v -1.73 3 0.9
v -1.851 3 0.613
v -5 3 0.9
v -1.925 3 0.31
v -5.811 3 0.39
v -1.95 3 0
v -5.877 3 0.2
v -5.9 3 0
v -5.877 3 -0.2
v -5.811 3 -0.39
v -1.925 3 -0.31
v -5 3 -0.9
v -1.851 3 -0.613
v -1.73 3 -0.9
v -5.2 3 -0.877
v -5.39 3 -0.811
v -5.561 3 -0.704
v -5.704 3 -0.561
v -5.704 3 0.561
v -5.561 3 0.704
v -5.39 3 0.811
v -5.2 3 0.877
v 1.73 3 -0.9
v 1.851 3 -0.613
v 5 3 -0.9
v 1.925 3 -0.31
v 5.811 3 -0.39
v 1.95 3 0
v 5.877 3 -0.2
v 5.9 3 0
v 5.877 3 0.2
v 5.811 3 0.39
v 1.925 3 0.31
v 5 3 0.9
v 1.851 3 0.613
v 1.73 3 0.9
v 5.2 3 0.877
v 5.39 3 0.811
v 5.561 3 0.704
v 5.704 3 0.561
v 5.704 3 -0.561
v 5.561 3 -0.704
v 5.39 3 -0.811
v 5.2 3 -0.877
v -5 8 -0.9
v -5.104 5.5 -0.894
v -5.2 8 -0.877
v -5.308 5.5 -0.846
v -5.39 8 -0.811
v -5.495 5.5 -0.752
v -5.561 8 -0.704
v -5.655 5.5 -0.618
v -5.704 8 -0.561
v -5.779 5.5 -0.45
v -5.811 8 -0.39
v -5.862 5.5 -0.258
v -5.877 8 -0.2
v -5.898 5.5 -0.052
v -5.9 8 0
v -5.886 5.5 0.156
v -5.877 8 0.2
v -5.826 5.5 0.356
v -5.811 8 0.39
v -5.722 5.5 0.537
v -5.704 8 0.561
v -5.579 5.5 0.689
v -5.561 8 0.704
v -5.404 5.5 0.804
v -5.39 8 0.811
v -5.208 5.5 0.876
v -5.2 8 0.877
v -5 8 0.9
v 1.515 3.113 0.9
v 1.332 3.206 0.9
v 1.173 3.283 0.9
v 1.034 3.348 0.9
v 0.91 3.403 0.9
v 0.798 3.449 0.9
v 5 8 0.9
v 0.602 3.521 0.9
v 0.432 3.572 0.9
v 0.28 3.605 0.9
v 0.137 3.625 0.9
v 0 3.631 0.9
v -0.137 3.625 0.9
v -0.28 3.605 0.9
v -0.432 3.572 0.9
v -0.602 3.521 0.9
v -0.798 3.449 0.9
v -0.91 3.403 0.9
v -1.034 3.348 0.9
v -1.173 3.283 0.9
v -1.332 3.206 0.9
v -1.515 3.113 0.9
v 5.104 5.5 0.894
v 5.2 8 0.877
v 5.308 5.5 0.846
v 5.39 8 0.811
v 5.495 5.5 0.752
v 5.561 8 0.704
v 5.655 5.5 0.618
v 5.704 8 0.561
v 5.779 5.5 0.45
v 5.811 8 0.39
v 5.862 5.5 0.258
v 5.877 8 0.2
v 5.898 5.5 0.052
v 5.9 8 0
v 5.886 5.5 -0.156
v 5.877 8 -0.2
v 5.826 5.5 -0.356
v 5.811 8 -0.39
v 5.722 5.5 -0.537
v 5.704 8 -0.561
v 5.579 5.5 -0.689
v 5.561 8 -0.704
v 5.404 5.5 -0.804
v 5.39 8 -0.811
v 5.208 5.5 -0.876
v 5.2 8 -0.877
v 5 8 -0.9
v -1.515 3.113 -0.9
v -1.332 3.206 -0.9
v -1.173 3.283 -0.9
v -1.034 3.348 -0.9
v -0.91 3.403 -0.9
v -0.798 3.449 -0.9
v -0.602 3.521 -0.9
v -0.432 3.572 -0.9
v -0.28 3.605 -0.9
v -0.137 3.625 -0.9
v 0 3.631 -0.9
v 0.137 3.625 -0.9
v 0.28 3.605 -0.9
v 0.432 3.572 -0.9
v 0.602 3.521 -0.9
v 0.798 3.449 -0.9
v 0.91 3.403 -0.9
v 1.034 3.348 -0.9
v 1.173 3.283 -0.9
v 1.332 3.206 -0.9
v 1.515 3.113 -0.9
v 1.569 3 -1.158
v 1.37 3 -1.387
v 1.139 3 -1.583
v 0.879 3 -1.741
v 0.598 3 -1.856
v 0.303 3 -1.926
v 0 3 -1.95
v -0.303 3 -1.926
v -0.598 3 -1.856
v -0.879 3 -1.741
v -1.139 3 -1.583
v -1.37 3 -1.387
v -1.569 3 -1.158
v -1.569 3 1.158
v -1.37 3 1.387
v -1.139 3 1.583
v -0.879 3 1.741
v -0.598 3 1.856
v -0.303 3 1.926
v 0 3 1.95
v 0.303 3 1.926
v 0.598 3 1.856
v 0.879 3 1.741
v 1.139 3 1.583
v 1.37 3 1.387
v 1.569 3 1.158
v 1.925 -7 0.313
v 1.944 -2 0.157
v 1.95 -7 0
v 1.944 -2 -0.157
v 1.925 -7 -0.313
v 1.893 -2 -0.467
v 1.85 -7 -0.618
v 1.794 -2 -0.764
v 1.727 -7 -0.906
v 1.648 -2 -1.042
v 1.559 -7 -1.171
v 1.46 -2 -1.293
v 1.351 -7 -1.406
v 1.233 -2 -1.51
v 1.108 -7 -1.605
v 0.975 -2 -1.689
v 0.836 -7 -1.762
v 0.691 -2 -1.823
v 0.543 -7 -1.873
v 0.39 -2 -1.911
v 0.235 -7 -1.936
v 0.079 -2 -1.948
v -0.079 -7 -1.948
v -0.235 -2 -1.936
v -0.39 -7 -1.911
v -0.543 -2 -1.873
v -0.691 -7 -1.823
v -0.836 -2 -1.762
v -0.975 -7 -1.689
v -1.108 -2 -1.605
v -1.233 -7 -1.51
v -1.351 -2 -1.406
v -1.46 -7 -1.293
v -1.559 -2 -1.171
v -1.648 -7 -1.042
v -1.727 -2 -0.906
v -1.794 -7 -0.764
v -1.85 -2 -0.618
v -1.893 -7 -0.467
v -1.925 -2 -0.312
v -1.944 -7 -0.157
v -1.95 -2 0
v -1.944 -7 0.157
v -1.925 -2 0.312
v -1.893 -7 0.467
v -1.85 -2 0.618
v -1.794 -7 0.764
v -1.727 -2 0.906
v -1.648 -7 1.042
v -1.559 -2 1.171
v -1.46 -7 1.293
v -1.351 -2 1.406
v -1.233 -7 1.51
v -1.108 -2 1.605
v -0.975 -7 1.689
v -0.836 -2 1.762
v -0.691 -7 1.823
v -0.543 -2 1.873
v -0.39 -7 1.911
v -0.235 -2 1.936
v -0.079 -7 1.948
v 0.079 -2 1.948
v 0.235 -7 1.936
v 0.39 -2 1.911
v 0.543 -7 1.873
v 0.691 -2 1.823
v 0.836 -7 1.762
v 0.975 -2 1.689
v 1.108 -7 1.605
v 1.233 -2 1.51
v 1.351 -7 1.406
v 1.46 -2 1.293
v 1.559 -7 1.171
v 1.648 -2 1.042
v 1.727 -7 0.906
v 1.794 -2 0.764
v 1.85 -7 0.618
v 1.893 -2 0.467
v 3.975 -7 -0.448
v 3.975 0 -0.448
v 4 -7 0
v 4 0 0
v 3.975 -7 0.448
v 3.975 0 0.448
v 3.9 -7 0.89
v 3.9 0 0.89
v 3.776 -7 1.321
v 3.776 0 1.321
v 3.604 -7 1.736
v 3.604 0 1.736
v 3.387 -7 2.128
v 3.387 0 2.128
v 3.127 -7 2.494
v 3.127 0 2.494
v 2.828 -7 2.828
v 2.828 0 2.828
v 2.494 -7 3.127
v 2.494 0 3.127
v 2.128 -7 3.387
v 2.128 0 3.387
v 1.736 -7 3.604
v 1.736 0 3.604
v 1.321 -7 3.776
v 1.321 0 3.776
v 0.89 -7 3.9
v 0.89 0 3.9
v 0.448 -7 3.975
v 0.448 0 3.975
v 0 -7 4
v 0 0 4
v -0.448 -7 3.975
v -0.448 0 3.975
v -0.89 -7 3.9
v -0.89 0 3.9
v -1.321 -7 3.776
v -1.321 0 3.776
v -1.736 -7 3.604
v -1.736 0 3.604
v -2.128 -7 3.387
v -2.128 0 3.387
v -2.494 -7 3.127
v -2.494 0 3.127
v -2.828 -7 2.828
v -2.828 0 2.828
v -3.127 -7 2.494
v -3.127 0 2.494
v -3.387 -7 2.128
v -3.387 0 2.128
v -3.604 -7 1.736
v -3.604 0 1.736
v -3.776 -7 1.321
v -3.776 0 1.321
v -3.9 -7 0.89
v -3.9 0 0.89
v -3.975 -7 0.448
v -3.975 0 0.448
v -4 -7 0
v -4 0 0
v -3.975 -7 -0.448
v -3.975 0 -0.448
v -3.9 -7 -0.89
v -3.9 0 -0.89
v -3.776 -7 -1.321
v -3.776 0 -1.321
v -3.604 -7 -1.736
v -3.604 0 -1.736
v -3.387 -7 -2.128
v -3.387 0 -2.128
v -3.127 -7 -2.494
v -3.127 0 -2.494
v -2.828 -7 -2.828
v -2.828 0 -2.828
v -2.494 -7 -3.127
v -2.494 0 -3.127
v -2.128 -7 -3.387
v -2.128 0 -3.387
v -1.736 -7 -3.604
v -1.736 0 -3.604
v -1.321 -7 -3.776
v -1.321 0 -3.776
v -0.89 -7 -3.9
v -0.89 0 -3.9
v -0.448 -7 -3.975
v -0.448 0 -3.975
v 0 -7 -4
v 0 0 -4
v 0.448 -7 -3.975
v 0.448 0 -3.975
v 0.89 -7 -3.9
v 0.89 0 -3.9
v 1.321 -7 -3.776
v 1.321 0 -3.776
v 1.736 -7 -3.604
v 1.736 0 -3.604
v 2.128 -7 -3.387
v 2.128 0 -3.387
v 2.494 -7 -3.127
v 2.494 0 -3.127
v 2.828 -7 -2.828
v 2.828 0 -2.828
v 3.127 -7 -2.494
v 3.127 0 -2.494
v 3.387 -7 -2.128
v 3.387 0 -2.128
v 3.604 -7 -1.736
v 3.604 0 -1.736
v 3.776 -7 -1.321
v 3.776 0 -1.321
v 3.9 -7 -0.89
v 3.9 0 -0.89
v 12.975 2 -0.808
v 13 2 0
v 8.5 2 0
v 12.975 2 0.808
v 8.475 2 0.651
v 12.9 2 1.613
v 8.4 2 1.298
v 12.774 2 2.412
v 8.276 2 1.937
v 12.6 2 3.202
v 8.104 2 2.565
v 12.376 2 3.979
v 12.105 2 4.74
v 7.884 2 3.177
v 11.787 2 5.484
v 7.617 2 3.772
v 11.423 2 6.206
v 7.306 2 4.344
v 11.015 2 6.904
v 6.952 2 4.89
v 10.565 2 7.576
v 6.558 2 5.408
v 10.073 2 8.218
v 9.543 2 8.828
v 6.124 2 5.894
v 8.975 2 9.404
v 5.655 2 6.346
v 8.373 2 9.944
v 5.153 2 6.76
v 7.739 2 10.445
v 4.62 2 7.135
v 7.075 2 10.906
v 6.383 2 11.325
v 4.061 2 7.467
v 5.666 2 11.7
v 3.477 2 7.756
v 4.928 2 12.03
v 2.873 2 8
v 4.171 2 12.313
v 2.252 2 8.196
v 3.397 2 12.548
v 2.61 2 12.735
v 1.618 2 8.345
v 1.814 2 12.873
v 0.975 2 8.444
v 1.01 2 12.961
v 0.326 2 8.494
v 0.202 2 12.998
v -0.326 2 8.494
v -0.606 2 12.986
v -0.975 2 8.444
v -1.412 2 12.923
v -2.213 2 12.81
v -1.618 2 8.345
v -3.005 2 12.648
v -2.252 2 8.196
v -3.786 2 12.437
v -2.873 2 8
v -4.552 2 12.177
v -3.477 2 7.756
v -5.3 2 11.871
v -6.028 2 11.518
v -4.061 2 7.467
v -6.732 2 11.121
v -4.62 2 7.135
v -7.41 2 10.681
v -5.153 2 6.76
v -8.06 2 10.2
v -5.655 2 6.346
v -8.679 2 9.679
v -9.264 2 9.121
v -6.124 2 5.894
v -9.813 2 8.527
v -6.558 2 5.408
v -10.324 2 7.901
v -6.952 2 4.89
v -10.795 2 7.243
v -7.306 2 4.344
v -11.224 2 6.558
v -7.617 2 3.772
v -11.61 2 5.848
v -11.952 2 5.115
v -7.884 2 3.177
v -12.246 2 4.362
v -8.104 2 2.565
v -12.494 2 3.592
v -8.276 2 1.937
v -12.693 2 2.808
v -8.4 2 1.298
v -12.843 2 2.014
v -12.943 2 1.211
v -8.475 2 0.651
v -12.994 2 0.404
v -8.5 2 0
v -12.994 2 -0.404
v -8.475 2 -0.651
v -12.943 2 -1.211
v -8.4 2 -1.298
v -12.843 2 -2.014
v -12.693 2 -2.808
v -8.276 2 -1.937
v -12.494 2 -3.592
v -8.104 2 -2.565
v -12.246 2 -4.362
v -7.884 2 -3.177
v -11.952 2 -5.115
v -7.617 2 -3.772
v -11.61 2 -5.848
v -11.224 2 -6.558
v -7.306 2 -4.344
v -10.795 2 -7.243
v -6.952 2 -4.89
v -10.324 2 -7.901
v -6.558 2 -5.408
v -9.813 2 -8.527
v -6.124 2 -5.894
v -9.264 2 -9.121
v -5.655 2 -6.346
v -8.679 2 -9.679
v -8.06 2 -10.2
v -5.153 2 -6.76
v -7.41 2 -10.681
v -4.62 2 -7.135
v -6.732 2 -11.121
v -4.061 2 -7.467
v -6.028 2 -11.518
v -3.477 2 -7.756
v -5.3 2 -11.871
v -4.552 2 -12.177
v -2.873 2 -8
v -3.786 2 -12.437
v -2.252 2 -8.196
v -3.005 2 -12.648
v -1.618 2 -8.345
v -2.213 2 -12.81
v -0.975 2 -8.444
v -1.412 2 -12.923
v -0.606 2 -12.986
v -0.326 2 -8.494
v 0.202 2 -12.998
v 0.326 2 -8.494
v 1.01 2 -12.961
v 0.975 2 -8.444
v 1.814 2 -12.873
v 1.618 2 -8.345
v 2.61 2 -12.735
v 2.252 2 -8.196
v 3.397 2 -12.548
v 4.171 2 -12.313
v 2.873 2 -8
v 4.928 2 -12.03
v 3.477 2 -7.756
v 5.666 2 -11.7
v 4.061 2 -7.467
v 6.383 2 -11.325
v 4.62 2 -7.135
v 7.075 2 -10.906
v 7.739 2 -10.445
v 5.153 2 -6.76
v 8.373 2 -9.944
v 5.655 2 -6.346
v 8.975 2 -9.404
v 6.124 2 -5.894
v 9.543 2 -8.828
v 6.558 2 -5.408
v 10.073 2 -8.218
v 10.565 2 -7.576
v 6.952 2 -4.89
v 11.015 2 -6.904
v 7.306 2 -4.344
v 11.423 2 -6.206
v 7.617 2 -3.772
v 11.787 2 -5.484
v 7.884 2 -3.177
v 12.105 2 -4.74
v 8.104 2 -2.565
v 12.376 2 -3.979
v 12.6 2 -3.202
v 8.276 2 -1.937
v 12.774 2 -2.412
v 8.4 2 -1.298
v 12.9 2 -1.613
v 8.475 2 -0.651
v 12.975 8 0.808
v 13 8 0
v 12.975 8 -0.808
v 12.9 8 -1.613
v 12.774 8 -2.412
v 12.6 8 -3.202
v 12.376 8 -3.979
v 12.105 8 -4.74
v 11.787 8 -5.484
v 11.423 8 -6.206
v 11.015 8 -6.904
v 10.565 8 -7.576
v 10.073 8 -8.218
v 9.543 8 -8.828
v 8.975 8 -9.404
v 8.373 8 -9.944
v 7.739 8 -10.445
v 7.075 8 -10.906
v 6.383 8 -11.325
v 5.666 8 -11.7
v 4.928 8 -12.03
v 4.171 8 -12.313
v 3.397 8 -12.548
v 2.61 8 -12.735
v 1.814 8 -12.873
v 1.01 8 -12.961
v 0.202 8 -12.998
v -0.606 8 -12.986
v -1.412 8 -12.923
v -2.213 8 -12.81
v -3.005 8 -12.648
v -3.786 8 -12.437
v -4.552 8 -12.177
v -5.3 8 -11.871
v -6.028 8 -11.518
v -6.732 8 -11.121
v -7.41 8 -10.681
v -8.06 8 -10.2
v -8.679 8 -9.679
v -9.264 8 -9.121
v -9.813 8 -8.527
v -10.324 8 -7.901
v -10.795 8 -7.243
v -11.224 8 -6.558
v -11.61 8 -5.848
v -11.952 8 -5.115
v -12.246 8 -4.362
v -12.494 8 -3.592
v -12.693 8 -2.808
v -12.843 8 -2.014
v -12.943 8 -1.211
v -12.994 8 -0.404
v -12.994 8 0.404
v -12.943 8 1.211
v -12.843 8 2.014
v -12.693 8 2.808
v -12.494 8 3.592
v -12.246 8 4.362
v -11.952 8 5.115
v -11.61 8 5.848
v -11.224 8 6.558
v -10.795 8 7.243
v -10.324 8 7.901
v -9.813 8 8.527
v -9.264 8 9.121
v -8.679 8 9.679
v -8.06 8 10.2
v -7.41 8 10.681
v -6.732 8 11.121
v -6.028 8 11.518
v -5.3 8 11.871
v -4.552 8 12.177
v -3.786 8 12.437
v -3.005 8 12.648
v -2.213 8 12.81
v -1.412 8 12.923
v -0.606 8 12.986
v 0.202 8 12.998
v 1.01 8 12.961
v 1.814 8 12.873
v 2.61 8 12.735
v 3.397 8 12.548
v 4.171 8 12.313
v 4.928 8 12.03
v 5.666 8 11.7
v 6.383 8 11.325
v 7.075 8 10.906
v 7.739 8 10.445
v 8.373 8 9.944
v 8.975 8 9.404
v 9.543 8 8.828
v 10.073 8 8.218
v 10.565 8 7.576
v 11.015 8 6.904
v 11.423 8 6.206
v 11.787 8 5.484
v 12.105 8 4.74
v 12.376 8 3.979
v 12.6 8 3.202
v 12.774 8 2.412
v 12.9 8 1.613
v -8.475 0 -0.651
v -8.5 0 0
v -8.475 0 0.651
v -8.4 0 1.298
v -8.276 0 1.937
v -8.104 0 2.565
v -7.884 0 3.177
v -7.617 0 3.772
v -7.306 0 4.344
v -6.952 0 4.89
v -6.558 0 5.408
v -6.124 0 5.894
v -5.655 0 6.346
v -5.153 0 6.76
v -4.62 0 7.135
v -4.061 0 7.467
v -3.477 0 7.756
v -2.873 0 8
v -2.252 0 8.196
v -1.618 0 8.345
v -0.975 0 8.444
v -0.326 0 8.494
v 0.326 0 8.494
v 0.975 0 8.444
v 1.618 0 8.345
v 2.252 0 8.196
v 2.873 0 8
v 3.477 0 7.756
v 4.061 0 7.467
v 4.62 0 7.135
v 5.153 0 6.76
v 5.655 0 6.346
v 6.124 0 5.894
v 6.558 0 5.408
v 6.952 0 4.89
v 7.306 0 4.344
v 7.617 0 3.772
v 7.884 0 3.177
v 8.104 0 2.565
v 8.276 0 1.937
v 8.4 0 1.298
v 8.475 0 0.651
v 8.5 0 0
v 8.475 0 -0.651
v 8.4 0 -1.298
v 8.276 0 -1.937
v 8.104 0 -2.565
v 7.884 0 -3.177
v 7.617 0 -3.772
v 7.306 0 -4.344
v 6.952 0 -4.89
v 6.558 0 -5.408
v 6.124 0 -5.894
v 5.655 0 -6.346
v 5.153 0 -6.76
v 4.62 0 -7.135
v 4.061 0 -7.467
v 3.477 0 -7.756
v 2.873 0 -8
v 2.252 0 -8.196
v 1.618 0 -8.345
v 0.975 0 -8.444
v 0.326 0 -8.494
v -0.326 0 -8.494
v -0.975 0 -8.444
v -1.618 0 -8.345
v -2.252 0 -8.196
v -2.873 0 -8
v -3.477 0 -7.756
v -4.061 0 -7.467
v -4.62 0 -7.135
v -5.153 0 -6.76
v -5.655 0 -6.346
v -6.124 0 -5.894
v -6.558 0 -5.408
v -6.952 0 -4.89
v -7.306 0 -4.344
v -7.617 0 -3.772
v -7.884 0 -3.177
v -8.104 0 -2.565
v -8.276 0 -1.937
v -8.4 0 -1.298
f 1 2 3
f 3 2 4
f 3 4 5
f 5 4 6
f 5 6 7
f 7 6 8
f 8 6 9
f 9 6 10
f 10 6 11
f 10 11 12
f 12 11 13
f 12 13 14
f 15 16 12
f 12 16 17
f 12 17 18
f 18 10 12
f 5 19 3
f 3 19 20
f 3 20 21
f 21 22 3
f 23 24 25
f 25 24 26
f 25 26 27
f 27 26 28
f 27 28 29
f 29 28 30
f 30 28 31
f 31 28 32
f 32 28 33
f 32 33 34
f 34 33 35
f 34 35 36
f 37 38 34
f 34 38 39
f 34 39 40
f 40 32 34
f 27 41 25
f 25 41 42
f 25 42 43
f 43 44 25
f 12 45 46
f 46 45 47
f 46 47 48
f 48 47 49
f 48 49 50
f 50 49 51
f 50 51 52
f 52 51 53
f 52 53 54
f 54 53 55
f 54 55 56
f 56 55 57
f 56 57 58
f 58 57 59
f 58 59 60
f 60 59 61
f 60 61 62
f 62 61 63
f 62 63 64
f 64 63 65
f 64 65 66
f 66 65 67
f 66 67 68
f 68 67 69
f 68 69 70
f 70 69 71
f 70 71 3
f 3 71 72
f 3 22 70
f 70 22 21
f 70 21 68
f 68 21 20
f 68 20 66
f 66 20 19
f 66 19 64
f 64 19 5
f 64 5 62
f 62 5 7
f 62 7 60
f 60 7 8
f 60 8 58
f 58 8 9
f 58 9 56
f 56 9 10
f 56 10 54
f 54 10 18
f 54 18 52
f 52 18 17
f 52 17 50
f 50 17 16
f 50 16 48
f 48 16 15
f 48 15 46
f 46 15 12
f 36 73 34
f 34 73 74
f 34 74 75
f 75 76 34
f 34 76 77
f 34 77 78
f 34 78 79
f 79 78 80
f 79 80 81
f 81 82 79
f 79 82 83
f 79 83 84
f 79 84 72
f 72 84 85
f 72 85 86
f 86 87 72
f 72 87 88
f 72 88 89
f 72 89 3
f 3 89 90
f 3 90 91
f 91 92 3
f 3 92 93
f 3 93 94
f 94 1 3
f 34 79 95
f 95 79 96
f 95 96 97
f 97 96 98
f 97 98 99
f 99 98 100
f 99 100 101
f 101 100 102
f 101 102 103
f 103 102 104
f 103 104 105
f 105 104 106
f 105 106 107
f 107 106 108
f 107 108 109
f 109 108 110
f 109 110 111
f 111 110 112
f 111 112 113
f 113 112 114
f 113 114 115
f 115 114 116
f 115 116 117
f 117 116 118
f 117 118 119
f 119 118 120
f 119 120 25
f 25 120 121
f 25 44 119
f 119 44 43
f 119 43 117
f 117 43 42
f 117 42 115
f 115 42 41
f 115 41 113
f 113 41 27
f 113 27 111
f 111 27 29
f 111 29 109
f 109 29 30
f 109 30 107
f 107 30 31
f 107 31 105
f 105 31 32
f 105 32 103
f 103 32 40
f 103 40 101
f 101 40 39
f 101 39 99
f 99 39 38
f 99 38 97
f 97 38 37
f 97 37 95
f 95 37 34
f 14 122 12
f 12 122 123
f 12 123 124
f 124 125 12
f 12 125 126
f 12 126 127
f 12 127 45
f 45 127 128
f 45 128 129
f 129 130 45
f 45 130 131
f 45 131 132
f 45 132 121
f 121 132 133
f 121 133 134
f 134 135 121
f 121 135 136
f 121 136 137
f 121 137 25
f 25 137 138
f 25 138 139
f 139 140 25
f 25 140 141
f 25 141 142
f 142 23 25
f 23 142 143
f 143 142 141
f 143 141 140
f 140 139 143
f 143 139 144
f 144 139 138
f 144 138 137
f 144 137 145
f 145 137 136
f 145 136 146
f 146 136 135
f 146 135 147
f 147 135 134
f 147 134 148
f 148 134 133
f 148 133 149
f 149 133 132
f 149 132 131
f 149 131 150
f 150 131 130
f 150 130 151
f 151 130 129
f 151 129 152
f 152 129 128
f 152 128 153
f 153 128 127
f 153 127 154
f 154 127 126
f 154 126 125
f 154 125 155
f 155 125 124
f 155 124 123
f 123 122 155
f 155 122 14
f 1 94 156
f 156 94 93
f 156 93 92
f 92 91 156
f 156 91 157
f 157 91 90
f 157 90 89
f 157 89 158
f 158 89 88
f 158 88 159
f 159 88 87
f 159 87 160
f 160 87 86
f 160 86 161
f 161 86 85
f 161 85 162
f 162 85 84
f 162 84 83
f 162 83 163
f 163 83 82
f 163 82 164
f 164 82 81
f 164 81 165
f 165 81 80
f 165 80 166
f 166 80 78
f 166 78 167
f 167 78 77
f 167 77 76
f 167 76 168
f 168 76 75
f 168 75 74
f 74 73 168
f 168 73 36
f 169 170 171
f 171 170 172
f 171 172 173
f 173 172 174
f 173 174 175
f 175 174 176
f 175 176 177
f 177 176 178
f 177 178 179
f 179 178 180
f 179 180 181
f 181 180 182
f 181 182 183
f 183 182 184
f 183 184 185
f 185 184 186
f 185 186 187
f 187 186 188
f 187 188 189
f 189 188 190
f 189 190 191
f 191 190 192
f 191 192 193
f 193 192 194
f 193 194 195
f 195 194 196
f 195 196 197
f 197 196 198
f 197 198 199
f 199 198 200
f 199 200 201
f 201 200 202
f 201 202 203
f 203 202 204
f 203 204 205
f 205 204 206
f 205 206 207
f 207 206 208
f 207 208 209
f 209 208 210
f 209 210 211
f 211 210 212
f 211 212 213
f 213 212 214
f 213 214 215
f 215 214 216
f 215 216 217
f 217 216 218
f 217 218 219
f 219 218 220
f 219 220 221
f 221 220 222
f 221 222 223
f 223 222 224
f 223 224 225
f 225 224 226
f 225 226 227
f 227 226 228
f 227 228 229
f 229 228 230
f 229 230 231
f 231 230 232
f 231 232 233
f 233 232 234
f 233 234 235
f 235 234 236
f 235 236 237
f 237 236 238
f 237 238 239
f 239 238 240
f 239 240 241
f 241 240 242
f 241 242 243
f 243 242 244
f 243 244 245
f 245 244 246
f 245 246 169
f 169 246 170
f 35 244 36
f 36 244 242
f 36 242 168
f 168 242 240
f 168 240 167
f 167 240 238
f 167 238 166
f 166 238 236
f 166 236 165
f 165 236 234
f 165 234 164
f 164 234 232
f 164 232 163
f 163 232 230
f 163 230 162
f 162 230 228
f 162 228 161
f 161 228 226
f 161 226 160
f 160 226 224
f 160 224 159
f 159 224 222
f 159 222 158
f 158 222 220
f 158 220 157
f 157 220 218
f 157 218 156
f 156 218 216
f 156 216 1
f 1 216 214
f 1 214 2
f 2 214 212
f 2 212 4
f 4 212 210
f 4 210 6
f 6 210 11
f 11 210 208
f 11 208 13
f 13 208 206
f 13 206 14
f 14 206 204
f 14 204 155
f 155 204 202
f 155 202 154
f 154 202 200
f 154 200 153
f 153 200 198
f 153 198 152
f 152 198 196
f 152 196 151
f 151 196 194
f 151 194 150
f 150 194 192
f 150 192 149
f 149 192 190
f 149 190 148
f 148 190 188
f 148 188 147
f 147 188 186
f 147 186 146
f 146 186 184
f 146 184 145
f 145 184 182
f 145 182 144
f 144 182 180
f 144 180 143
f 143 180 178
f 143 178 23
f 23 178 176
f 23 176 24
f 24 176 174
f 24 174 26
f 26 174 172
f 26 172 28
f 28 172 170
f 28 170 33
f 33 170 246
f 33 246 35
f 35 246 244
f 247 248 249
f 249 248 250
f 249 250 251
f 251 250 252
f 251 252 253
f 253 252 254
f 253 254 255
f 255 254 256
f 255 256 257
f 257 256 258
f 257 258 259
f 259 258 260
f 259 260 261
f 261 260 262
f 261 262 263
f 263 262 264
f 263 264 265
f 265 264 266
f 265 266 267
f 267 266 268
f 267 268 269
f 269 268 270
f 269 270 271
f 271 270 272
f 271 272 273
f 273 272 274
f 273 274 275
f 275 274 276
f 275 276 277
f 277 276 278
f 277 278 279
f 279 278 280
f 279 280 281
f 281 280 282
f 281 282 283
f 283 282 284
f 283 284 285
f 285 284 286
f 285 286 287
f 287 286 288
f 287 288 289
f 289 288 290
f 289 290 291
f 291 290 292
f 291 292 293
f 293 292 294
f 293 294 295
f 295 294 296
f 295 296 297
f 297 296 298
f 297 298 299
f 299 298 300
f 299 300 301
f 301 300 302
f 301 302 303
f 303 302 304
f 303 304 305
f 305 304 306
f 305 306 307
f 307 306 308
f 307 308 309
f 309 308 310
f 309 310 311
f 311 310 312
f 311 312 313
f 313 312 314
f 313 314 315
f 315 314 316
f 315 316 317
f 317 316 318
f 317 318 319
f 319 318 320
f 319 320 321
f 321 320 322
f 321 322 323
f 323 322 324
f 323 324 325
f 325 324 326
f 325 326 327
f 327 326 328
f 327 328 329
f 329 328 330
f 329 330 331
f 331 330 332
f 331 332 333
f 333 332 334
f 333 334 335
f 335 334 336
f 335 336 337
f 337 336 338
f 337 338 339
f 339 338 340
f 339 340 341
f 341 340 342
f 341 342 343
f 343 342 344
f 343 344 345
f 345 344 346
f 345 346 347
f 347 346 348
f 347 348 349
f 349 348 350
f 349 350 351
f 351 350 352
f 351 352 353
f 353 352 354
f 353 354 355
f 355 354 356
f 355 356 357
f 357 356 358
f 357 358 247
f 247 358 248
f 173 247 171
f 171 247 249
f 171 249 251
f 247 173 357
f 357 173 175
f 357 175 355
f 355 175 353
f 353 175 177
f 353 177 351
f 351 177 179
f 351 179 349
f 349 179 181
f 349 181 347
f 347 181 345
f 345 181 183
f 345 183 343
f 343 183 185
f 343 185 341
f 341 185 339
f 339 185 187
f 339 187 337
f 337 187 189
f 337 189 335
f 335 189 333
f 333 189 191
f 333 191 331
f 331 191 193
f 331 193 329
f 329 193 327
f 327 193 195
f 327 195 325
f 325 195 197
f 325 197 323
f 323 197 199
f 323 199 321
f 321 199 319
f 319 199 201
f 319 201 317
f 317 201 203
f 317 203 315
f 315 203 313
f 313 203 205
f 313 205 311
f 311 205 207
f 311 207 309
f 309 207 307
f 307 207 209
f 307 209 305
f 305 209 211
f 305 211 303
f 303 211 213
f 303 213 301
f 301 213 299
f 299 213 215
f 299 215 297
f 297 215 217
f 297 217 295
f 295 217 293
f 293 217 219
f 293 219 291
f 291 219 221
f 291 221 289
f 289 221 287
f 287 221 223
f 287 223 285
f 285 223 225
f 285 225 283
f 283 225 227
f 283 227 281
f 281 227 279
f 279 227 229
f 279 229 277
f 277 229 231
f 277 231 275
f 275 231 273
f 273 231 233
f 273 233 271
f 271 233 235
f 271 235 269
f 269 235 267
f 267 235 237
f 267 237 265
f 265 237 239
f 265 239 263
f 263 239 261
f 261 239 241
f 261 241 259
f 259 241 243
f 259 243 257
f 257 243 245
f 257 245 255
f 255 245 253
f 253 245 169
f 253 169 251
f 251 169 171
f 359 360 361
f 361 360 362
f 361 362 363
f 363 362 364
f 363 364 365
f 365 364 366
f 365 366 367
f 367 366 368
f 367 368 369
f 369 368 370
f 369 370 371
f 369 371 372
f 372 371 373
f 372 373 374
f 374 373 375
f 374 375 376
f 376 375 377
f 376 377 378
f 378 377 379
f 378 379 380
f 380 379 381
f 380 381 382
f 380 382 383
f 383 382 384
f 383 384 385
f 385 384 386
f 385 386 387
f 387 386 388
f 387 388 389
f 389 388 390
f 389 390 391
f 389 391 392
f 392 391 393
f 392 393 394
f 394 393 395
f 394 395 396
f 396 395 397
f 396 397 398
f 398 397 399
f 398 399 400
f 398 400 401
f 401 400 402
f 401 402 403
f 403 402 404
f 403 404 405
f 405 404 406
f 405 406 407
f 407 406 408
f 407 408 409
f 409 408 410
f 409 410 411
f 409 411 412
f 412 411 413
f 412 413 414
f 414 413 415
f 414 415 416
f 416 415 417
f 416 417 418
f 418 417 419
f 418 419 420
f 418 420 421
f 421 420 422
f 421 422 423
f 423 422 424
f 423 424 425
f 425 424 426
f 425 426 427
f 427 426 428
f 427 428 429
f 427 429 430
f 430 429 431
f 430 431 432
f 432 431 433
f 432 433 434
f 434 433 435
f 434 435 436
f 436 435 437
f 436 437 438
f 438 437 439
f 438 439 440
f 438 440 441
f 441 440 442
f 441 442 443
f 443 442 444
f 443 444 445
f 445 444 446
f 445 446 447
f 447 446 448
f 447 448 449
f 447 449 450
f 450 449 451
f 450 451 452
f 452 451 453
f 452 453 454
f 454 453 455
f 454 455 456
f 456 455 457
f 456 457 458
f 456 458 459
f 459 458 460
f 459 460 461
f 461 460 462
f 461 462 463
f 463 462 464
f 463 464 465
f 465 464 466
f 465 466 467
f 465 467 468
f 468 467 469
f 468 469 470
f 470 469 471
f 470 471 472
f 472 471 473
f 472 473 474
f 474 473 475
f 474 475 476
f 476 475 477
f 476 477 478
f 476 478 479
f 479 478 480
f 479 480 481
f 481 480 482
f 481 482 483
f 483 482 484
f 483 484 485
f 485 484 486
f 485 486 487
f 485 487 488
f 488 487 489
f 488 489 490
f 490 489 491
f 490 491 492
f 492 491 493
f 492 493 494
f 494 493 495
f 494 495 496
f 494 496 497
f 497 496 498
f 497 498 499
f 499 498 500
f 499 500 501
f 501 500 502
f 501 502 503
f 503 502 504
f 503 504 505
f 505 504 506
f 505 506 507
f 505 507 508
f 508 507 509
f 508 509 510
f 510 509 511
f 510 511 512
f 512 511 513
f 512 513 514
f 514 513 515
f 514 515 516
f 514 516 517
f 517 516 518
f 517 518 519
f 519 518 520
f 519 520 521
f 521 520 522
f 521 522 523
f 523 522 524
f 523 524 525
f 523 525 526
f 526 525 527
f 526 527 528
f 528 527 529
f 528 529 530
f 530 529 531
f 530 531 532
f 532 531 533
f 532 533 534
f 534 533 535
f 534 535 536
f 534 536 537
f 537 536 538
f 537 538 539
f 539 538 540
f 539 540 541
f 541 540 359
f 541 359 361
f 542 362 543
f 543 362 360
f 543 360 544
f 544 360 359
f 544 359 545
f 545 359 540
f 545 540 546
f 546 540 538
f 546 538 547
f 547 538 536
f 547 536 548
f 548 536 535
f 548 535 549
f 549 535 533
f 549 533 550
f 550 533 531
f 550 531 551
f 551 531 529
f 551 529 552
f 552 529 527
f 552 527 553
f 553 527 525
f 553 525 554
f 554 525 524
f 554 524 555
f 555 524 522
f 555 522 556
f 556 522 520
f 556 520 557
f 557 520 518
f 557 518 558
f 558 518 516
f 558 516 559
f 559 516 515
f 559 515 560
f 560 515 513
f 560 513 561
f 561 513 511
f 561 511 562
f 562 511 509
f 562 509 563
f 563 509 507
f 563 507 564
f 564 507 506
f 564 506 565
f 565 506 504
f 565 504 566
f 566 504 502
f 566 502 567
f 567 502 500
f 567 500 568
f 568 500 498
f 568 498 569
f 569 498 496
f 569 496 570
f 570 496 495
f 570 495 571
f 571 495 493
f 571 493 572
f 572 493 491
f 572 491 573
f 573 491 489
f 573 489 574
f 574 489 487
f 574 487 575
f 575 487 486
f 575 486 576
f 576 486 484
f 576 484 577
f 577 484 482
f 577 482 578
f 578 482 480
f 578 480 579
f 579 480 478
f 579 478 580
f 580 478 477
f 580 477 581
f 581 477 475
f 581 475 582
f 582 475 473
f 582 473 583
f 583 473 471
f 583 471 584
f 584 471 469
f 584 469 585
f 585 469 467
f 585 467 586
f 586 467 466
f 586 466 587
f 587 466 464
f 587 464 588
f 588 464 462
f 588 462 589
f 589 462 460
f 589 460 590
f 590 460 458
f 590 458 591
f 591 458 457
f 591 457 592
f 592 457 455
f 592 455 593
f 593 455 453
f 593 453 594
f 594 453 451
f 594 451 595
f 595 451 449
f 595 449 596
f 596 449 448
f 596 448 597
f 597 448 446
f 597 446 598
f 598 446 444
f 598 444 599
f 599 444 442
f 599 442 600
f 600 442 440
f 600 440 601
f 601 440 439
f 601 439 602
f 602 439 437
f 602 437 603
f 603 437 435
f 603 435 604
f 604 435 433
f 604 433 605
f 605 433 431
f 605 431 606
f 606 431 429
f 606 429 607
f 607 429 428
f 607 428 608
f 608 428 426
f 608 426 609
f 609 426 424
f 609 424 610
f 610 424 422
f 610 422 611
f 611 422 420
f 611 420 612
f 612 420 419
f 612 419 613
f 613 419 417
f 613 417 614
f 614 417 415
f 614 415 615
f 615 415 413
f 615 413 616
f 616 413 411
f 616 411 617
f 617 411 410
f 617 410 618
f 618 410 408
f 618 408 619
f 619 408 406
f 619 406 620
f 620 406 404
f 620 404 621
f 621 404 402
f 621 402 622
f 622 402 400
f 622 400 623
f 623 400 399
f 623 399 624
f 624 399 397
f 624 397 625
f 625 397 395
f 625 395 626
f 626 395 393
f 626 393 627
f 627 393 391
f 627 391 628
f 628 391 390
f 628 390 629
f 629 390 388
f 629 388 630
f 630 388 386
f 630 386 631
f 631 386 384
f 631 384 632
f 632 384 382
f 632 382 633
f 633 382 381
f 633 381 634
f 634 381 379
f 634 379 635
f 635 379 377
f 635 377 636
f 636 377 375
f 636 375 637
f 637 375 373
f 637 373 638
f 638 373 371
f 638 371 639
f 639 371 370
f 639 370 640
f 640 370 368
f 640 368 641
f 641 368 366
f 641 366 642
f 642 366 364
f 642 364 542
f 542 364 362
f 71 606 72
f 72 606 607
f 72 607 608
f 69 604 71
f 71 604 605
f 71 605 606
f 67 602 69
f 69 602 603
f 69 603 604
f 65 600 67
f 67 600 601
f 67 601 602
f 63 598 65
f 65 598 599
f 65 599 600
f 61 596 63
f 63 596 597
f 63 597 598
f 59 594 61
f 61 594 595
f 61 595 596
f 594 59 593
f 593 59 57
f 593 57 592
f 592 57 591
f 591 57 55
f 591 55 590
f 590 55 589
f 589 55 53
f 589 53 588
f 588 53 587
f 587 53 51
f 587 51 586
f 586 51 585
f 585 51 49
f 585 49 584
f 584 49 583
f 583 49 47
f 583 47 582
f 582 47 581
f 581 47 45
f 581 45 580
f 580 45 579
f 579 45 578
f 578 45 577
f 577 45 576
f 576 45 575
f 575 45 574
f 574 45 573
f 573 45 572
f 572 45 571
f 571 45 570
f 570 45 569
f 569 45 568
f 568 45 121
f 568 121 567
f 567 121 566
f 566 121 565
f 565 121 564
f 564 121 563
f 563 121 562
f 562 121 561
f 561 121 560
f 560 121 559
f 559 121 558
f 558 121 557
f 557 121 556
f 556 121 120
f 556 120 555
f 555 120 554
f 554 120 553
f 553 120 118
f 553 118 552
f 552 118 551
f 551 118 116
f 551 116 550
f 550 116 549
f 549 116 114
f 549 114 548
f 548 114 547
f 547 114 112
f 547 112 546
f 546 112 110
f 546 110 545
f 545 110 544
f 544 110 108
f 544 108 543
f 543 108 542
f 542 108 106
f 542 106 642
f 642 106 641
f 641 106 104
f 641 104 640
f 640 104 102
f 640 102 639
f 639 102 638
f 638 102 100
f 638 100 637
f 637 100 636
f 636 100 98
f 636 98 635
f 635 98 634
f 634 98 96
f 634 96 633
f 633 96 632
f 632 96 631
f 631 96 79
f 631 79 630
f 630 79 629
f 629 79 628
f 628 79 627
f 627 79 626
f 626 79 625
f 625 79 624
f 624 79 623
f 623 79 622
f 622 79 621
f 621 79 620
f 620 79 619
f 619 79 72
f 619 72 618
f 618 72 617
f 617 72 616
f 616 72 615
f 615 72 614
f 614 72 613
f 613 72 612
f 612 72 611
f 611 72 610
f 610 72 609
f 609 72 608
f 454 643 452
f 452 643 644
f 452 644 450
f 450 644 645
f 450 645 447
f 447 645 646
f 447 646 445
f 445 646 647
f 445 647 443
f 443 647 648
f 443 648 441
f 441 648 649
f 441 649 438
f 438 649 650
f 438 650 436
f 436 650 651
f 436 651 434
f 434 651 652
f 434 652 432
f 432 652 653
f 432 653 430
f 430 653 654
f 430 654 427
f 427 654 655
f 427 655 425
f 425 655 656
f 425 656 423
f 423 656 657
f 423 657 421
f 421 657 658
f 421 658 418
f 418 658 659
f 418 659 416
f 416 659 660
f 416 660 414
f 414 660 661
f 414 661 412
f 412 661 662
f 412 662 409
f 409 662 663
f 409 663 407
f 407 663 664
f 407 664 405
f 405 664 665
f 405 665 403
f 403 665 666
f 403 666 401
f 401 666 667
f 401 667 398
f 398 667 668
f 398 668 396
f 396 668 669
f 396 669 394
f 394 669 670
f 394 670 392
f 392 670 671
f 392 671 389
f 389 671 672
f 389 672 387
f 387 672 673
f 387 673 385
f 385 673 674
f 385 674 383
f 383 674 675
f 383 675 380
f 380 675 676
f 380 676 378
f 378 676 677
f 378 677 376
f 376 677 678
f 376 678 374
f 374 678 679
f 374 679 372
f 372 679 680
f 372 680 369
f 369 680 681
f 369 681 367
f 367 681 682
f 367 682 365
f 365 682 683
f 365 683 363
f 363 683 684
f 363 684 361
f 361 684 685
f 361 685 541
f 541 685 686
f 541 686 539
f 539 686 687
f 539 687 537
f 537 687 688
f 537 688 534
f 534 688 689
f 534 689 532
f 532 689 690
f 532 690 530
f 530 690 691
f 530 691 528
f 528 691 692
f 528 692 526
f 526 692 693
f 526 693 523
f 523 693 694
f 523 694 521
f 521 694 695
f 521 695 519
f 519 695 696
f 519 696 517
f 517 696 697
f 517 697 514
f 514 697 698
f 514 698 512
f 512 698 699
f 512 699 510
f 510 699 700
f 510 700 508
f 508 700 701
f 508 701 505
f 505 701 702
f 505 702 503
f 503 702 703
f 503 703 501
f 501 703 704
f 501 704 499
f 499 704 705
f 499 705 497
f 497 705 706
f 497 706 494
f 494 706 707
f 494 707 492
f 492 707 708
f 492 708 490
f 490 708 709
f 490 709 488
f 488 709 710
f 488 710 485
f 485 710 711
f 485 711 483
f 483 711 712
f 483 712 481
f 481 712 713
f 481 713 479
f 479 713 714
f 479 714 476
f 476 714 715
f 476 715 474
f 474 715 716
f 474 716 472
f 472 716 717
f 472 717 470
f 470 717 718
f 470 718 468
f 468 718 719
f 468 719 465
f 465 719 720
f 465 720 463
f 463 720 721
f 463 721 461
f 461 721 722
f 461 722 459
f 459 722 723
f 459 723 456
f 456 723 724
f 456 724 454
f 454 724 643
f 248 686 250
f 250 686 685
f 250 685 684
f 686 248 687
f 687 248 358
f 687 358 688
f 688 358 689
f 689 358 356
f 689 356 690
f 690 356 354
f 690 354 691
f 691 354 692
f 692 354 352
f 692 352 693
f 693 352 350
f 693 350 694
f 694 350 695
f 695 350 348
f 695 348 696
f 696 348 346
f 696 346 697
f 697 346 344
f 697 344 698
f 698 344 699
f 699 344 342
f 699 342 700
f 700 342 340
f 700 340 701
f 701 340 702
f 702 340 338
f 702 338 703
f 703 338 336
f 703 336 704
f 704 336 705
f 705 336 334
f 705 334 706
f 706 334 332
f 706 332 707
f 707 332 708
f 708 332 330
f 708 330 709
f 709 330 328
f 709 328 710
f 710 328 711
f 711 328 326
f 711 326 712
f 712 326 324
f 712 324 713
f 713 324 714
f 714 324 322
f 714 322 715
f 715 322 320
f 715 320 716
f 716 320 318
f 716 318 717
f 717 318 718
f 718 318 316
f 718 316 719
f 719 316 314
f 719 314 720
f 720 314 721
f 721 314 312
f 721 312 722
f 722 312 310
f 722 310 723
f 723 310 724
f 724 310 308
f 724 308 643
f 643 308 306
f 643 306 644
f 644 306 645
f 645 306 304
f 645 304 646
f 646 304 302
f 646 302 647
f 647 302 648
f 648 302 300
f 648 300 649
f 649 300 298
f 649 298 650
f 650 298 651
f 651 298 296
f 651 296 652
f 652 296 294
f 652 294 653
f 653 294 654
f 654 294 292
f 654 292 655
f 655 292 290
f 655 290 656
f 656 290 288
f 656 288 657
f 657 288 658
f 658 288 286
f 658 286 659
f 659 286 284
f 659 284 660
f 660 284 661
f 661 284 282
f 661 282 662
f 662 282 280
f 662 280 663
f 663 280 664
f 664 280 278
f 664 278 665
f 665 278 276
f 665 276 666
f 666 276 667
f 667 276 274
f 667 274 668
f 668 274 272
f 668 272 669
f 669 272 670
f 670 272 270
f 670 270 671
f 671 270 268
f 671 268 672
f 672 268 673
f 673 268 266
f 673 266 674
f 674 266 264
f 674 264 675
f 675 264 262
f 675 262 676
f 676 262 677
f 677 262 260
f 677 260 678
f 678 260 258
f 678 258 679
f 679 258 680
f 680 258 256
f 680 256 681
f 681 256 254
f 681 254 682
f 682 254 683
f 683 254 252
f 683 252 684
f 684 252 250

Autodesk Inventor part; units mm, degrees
ref_plane "YZ Plane" through (0, 0, 0) normal (1, 0, 0) x (0, 1, 0)
ref_plane "XZ Plane" through (0, 0, 0) normal (0, 1, 0) x (-1, 0, 0)
ref_plane "XY Plane" through (0, 0, 0) normal (0, 0, 1) x (1, 0, 0)
sketch "Sketch1" plane through (0, 0, 0) normal (0, 1, 0) x (-1, 0, 0)
  circle A0 centre (0, 0) radius 8.5
  dimension "d0" = 17
extrude "Extrusion1" add sketch "Sketch1" along normal blind 2
sketch "Sketch2" plane through (0, 2, 0) normal (0, 1, 0) x (1, 0, 0)
  circle A0 centre (0, 0) radius 13
  dimension "d3" = 26
extrude "Extrusion2" add sketch "Sketch2" along normal blind 6
sketch "Sketch3" plane through (0, 0, 0) normal (0, -1, 0) x (1, 0, 0)
  circle A0 centre (0, 0) radius 4
  dimension "d6" = 8
extrude "Extrusion3" add sketch "Sketch3" along normal blind 7
sketch "Sketch4" plane through (0, -7, 0) normal (0, -1, 0) x (1, 0, 0)
  point P0 (0, 0)
  point P1 (0, 0)
hole "Hole1" at (0, -7, 0) direction (0, 1, 0) diameter 3.9 depth 10 tip angle 118
sketch "Sketch6" plane through (0, 8, 0) normal (0, 1, 0) x (1, 0, 0)
  line L0 (5, 0) -> (-5, 0) construction
  line L1 (5, 0.9) -> (-5, 0.9)
  line L2 (-5, -0.9) -> (5, -0.9)
  arc A0 (5, -0.9) -> (5, 0.9) centre (5, 0) ccw
  arc A1 (-5, 0.9) -> (-5, -0.9) centre (-5, 0) ccw
  point P0 (0, 0)
  point P1 (0, 0)
  dimension "d24" = 1.8
  dimension "d25" = 10
extrude "Extrusion5" cut sketch "Sketch6" against normal blind 5
sketch "Sketch7" plane through (0, 8, 0) normal (0, 1, 0) x (1, 0, 0)
  line L0 (0.9699, -12.5028) -> (-0.9699, -12.5028)
  line L1 (-0.9699, -12.5028) -> (-0.9699, -13.4972)
  line L2 (-0.9699, -13.4972) -> (0.9699, -13.4972)
  line L3 (0.9699, -13.4972) -> (0.9699, -12.5028)
  circle A0 centre (0, 0) radius 13 projected
  line L4 (0.9699, -12.5028) -> (-0.9699, -13.4972) construction
  line L5 (-0.9699, -12.5028) -> (0.9699, -13.4972) construction
  circle A1 centre (0, 0) radius 13 projected
  line L6 (0, -13) -> (0, 0) construction
properties part number "Arm - 608 bearing cap [Med]"
